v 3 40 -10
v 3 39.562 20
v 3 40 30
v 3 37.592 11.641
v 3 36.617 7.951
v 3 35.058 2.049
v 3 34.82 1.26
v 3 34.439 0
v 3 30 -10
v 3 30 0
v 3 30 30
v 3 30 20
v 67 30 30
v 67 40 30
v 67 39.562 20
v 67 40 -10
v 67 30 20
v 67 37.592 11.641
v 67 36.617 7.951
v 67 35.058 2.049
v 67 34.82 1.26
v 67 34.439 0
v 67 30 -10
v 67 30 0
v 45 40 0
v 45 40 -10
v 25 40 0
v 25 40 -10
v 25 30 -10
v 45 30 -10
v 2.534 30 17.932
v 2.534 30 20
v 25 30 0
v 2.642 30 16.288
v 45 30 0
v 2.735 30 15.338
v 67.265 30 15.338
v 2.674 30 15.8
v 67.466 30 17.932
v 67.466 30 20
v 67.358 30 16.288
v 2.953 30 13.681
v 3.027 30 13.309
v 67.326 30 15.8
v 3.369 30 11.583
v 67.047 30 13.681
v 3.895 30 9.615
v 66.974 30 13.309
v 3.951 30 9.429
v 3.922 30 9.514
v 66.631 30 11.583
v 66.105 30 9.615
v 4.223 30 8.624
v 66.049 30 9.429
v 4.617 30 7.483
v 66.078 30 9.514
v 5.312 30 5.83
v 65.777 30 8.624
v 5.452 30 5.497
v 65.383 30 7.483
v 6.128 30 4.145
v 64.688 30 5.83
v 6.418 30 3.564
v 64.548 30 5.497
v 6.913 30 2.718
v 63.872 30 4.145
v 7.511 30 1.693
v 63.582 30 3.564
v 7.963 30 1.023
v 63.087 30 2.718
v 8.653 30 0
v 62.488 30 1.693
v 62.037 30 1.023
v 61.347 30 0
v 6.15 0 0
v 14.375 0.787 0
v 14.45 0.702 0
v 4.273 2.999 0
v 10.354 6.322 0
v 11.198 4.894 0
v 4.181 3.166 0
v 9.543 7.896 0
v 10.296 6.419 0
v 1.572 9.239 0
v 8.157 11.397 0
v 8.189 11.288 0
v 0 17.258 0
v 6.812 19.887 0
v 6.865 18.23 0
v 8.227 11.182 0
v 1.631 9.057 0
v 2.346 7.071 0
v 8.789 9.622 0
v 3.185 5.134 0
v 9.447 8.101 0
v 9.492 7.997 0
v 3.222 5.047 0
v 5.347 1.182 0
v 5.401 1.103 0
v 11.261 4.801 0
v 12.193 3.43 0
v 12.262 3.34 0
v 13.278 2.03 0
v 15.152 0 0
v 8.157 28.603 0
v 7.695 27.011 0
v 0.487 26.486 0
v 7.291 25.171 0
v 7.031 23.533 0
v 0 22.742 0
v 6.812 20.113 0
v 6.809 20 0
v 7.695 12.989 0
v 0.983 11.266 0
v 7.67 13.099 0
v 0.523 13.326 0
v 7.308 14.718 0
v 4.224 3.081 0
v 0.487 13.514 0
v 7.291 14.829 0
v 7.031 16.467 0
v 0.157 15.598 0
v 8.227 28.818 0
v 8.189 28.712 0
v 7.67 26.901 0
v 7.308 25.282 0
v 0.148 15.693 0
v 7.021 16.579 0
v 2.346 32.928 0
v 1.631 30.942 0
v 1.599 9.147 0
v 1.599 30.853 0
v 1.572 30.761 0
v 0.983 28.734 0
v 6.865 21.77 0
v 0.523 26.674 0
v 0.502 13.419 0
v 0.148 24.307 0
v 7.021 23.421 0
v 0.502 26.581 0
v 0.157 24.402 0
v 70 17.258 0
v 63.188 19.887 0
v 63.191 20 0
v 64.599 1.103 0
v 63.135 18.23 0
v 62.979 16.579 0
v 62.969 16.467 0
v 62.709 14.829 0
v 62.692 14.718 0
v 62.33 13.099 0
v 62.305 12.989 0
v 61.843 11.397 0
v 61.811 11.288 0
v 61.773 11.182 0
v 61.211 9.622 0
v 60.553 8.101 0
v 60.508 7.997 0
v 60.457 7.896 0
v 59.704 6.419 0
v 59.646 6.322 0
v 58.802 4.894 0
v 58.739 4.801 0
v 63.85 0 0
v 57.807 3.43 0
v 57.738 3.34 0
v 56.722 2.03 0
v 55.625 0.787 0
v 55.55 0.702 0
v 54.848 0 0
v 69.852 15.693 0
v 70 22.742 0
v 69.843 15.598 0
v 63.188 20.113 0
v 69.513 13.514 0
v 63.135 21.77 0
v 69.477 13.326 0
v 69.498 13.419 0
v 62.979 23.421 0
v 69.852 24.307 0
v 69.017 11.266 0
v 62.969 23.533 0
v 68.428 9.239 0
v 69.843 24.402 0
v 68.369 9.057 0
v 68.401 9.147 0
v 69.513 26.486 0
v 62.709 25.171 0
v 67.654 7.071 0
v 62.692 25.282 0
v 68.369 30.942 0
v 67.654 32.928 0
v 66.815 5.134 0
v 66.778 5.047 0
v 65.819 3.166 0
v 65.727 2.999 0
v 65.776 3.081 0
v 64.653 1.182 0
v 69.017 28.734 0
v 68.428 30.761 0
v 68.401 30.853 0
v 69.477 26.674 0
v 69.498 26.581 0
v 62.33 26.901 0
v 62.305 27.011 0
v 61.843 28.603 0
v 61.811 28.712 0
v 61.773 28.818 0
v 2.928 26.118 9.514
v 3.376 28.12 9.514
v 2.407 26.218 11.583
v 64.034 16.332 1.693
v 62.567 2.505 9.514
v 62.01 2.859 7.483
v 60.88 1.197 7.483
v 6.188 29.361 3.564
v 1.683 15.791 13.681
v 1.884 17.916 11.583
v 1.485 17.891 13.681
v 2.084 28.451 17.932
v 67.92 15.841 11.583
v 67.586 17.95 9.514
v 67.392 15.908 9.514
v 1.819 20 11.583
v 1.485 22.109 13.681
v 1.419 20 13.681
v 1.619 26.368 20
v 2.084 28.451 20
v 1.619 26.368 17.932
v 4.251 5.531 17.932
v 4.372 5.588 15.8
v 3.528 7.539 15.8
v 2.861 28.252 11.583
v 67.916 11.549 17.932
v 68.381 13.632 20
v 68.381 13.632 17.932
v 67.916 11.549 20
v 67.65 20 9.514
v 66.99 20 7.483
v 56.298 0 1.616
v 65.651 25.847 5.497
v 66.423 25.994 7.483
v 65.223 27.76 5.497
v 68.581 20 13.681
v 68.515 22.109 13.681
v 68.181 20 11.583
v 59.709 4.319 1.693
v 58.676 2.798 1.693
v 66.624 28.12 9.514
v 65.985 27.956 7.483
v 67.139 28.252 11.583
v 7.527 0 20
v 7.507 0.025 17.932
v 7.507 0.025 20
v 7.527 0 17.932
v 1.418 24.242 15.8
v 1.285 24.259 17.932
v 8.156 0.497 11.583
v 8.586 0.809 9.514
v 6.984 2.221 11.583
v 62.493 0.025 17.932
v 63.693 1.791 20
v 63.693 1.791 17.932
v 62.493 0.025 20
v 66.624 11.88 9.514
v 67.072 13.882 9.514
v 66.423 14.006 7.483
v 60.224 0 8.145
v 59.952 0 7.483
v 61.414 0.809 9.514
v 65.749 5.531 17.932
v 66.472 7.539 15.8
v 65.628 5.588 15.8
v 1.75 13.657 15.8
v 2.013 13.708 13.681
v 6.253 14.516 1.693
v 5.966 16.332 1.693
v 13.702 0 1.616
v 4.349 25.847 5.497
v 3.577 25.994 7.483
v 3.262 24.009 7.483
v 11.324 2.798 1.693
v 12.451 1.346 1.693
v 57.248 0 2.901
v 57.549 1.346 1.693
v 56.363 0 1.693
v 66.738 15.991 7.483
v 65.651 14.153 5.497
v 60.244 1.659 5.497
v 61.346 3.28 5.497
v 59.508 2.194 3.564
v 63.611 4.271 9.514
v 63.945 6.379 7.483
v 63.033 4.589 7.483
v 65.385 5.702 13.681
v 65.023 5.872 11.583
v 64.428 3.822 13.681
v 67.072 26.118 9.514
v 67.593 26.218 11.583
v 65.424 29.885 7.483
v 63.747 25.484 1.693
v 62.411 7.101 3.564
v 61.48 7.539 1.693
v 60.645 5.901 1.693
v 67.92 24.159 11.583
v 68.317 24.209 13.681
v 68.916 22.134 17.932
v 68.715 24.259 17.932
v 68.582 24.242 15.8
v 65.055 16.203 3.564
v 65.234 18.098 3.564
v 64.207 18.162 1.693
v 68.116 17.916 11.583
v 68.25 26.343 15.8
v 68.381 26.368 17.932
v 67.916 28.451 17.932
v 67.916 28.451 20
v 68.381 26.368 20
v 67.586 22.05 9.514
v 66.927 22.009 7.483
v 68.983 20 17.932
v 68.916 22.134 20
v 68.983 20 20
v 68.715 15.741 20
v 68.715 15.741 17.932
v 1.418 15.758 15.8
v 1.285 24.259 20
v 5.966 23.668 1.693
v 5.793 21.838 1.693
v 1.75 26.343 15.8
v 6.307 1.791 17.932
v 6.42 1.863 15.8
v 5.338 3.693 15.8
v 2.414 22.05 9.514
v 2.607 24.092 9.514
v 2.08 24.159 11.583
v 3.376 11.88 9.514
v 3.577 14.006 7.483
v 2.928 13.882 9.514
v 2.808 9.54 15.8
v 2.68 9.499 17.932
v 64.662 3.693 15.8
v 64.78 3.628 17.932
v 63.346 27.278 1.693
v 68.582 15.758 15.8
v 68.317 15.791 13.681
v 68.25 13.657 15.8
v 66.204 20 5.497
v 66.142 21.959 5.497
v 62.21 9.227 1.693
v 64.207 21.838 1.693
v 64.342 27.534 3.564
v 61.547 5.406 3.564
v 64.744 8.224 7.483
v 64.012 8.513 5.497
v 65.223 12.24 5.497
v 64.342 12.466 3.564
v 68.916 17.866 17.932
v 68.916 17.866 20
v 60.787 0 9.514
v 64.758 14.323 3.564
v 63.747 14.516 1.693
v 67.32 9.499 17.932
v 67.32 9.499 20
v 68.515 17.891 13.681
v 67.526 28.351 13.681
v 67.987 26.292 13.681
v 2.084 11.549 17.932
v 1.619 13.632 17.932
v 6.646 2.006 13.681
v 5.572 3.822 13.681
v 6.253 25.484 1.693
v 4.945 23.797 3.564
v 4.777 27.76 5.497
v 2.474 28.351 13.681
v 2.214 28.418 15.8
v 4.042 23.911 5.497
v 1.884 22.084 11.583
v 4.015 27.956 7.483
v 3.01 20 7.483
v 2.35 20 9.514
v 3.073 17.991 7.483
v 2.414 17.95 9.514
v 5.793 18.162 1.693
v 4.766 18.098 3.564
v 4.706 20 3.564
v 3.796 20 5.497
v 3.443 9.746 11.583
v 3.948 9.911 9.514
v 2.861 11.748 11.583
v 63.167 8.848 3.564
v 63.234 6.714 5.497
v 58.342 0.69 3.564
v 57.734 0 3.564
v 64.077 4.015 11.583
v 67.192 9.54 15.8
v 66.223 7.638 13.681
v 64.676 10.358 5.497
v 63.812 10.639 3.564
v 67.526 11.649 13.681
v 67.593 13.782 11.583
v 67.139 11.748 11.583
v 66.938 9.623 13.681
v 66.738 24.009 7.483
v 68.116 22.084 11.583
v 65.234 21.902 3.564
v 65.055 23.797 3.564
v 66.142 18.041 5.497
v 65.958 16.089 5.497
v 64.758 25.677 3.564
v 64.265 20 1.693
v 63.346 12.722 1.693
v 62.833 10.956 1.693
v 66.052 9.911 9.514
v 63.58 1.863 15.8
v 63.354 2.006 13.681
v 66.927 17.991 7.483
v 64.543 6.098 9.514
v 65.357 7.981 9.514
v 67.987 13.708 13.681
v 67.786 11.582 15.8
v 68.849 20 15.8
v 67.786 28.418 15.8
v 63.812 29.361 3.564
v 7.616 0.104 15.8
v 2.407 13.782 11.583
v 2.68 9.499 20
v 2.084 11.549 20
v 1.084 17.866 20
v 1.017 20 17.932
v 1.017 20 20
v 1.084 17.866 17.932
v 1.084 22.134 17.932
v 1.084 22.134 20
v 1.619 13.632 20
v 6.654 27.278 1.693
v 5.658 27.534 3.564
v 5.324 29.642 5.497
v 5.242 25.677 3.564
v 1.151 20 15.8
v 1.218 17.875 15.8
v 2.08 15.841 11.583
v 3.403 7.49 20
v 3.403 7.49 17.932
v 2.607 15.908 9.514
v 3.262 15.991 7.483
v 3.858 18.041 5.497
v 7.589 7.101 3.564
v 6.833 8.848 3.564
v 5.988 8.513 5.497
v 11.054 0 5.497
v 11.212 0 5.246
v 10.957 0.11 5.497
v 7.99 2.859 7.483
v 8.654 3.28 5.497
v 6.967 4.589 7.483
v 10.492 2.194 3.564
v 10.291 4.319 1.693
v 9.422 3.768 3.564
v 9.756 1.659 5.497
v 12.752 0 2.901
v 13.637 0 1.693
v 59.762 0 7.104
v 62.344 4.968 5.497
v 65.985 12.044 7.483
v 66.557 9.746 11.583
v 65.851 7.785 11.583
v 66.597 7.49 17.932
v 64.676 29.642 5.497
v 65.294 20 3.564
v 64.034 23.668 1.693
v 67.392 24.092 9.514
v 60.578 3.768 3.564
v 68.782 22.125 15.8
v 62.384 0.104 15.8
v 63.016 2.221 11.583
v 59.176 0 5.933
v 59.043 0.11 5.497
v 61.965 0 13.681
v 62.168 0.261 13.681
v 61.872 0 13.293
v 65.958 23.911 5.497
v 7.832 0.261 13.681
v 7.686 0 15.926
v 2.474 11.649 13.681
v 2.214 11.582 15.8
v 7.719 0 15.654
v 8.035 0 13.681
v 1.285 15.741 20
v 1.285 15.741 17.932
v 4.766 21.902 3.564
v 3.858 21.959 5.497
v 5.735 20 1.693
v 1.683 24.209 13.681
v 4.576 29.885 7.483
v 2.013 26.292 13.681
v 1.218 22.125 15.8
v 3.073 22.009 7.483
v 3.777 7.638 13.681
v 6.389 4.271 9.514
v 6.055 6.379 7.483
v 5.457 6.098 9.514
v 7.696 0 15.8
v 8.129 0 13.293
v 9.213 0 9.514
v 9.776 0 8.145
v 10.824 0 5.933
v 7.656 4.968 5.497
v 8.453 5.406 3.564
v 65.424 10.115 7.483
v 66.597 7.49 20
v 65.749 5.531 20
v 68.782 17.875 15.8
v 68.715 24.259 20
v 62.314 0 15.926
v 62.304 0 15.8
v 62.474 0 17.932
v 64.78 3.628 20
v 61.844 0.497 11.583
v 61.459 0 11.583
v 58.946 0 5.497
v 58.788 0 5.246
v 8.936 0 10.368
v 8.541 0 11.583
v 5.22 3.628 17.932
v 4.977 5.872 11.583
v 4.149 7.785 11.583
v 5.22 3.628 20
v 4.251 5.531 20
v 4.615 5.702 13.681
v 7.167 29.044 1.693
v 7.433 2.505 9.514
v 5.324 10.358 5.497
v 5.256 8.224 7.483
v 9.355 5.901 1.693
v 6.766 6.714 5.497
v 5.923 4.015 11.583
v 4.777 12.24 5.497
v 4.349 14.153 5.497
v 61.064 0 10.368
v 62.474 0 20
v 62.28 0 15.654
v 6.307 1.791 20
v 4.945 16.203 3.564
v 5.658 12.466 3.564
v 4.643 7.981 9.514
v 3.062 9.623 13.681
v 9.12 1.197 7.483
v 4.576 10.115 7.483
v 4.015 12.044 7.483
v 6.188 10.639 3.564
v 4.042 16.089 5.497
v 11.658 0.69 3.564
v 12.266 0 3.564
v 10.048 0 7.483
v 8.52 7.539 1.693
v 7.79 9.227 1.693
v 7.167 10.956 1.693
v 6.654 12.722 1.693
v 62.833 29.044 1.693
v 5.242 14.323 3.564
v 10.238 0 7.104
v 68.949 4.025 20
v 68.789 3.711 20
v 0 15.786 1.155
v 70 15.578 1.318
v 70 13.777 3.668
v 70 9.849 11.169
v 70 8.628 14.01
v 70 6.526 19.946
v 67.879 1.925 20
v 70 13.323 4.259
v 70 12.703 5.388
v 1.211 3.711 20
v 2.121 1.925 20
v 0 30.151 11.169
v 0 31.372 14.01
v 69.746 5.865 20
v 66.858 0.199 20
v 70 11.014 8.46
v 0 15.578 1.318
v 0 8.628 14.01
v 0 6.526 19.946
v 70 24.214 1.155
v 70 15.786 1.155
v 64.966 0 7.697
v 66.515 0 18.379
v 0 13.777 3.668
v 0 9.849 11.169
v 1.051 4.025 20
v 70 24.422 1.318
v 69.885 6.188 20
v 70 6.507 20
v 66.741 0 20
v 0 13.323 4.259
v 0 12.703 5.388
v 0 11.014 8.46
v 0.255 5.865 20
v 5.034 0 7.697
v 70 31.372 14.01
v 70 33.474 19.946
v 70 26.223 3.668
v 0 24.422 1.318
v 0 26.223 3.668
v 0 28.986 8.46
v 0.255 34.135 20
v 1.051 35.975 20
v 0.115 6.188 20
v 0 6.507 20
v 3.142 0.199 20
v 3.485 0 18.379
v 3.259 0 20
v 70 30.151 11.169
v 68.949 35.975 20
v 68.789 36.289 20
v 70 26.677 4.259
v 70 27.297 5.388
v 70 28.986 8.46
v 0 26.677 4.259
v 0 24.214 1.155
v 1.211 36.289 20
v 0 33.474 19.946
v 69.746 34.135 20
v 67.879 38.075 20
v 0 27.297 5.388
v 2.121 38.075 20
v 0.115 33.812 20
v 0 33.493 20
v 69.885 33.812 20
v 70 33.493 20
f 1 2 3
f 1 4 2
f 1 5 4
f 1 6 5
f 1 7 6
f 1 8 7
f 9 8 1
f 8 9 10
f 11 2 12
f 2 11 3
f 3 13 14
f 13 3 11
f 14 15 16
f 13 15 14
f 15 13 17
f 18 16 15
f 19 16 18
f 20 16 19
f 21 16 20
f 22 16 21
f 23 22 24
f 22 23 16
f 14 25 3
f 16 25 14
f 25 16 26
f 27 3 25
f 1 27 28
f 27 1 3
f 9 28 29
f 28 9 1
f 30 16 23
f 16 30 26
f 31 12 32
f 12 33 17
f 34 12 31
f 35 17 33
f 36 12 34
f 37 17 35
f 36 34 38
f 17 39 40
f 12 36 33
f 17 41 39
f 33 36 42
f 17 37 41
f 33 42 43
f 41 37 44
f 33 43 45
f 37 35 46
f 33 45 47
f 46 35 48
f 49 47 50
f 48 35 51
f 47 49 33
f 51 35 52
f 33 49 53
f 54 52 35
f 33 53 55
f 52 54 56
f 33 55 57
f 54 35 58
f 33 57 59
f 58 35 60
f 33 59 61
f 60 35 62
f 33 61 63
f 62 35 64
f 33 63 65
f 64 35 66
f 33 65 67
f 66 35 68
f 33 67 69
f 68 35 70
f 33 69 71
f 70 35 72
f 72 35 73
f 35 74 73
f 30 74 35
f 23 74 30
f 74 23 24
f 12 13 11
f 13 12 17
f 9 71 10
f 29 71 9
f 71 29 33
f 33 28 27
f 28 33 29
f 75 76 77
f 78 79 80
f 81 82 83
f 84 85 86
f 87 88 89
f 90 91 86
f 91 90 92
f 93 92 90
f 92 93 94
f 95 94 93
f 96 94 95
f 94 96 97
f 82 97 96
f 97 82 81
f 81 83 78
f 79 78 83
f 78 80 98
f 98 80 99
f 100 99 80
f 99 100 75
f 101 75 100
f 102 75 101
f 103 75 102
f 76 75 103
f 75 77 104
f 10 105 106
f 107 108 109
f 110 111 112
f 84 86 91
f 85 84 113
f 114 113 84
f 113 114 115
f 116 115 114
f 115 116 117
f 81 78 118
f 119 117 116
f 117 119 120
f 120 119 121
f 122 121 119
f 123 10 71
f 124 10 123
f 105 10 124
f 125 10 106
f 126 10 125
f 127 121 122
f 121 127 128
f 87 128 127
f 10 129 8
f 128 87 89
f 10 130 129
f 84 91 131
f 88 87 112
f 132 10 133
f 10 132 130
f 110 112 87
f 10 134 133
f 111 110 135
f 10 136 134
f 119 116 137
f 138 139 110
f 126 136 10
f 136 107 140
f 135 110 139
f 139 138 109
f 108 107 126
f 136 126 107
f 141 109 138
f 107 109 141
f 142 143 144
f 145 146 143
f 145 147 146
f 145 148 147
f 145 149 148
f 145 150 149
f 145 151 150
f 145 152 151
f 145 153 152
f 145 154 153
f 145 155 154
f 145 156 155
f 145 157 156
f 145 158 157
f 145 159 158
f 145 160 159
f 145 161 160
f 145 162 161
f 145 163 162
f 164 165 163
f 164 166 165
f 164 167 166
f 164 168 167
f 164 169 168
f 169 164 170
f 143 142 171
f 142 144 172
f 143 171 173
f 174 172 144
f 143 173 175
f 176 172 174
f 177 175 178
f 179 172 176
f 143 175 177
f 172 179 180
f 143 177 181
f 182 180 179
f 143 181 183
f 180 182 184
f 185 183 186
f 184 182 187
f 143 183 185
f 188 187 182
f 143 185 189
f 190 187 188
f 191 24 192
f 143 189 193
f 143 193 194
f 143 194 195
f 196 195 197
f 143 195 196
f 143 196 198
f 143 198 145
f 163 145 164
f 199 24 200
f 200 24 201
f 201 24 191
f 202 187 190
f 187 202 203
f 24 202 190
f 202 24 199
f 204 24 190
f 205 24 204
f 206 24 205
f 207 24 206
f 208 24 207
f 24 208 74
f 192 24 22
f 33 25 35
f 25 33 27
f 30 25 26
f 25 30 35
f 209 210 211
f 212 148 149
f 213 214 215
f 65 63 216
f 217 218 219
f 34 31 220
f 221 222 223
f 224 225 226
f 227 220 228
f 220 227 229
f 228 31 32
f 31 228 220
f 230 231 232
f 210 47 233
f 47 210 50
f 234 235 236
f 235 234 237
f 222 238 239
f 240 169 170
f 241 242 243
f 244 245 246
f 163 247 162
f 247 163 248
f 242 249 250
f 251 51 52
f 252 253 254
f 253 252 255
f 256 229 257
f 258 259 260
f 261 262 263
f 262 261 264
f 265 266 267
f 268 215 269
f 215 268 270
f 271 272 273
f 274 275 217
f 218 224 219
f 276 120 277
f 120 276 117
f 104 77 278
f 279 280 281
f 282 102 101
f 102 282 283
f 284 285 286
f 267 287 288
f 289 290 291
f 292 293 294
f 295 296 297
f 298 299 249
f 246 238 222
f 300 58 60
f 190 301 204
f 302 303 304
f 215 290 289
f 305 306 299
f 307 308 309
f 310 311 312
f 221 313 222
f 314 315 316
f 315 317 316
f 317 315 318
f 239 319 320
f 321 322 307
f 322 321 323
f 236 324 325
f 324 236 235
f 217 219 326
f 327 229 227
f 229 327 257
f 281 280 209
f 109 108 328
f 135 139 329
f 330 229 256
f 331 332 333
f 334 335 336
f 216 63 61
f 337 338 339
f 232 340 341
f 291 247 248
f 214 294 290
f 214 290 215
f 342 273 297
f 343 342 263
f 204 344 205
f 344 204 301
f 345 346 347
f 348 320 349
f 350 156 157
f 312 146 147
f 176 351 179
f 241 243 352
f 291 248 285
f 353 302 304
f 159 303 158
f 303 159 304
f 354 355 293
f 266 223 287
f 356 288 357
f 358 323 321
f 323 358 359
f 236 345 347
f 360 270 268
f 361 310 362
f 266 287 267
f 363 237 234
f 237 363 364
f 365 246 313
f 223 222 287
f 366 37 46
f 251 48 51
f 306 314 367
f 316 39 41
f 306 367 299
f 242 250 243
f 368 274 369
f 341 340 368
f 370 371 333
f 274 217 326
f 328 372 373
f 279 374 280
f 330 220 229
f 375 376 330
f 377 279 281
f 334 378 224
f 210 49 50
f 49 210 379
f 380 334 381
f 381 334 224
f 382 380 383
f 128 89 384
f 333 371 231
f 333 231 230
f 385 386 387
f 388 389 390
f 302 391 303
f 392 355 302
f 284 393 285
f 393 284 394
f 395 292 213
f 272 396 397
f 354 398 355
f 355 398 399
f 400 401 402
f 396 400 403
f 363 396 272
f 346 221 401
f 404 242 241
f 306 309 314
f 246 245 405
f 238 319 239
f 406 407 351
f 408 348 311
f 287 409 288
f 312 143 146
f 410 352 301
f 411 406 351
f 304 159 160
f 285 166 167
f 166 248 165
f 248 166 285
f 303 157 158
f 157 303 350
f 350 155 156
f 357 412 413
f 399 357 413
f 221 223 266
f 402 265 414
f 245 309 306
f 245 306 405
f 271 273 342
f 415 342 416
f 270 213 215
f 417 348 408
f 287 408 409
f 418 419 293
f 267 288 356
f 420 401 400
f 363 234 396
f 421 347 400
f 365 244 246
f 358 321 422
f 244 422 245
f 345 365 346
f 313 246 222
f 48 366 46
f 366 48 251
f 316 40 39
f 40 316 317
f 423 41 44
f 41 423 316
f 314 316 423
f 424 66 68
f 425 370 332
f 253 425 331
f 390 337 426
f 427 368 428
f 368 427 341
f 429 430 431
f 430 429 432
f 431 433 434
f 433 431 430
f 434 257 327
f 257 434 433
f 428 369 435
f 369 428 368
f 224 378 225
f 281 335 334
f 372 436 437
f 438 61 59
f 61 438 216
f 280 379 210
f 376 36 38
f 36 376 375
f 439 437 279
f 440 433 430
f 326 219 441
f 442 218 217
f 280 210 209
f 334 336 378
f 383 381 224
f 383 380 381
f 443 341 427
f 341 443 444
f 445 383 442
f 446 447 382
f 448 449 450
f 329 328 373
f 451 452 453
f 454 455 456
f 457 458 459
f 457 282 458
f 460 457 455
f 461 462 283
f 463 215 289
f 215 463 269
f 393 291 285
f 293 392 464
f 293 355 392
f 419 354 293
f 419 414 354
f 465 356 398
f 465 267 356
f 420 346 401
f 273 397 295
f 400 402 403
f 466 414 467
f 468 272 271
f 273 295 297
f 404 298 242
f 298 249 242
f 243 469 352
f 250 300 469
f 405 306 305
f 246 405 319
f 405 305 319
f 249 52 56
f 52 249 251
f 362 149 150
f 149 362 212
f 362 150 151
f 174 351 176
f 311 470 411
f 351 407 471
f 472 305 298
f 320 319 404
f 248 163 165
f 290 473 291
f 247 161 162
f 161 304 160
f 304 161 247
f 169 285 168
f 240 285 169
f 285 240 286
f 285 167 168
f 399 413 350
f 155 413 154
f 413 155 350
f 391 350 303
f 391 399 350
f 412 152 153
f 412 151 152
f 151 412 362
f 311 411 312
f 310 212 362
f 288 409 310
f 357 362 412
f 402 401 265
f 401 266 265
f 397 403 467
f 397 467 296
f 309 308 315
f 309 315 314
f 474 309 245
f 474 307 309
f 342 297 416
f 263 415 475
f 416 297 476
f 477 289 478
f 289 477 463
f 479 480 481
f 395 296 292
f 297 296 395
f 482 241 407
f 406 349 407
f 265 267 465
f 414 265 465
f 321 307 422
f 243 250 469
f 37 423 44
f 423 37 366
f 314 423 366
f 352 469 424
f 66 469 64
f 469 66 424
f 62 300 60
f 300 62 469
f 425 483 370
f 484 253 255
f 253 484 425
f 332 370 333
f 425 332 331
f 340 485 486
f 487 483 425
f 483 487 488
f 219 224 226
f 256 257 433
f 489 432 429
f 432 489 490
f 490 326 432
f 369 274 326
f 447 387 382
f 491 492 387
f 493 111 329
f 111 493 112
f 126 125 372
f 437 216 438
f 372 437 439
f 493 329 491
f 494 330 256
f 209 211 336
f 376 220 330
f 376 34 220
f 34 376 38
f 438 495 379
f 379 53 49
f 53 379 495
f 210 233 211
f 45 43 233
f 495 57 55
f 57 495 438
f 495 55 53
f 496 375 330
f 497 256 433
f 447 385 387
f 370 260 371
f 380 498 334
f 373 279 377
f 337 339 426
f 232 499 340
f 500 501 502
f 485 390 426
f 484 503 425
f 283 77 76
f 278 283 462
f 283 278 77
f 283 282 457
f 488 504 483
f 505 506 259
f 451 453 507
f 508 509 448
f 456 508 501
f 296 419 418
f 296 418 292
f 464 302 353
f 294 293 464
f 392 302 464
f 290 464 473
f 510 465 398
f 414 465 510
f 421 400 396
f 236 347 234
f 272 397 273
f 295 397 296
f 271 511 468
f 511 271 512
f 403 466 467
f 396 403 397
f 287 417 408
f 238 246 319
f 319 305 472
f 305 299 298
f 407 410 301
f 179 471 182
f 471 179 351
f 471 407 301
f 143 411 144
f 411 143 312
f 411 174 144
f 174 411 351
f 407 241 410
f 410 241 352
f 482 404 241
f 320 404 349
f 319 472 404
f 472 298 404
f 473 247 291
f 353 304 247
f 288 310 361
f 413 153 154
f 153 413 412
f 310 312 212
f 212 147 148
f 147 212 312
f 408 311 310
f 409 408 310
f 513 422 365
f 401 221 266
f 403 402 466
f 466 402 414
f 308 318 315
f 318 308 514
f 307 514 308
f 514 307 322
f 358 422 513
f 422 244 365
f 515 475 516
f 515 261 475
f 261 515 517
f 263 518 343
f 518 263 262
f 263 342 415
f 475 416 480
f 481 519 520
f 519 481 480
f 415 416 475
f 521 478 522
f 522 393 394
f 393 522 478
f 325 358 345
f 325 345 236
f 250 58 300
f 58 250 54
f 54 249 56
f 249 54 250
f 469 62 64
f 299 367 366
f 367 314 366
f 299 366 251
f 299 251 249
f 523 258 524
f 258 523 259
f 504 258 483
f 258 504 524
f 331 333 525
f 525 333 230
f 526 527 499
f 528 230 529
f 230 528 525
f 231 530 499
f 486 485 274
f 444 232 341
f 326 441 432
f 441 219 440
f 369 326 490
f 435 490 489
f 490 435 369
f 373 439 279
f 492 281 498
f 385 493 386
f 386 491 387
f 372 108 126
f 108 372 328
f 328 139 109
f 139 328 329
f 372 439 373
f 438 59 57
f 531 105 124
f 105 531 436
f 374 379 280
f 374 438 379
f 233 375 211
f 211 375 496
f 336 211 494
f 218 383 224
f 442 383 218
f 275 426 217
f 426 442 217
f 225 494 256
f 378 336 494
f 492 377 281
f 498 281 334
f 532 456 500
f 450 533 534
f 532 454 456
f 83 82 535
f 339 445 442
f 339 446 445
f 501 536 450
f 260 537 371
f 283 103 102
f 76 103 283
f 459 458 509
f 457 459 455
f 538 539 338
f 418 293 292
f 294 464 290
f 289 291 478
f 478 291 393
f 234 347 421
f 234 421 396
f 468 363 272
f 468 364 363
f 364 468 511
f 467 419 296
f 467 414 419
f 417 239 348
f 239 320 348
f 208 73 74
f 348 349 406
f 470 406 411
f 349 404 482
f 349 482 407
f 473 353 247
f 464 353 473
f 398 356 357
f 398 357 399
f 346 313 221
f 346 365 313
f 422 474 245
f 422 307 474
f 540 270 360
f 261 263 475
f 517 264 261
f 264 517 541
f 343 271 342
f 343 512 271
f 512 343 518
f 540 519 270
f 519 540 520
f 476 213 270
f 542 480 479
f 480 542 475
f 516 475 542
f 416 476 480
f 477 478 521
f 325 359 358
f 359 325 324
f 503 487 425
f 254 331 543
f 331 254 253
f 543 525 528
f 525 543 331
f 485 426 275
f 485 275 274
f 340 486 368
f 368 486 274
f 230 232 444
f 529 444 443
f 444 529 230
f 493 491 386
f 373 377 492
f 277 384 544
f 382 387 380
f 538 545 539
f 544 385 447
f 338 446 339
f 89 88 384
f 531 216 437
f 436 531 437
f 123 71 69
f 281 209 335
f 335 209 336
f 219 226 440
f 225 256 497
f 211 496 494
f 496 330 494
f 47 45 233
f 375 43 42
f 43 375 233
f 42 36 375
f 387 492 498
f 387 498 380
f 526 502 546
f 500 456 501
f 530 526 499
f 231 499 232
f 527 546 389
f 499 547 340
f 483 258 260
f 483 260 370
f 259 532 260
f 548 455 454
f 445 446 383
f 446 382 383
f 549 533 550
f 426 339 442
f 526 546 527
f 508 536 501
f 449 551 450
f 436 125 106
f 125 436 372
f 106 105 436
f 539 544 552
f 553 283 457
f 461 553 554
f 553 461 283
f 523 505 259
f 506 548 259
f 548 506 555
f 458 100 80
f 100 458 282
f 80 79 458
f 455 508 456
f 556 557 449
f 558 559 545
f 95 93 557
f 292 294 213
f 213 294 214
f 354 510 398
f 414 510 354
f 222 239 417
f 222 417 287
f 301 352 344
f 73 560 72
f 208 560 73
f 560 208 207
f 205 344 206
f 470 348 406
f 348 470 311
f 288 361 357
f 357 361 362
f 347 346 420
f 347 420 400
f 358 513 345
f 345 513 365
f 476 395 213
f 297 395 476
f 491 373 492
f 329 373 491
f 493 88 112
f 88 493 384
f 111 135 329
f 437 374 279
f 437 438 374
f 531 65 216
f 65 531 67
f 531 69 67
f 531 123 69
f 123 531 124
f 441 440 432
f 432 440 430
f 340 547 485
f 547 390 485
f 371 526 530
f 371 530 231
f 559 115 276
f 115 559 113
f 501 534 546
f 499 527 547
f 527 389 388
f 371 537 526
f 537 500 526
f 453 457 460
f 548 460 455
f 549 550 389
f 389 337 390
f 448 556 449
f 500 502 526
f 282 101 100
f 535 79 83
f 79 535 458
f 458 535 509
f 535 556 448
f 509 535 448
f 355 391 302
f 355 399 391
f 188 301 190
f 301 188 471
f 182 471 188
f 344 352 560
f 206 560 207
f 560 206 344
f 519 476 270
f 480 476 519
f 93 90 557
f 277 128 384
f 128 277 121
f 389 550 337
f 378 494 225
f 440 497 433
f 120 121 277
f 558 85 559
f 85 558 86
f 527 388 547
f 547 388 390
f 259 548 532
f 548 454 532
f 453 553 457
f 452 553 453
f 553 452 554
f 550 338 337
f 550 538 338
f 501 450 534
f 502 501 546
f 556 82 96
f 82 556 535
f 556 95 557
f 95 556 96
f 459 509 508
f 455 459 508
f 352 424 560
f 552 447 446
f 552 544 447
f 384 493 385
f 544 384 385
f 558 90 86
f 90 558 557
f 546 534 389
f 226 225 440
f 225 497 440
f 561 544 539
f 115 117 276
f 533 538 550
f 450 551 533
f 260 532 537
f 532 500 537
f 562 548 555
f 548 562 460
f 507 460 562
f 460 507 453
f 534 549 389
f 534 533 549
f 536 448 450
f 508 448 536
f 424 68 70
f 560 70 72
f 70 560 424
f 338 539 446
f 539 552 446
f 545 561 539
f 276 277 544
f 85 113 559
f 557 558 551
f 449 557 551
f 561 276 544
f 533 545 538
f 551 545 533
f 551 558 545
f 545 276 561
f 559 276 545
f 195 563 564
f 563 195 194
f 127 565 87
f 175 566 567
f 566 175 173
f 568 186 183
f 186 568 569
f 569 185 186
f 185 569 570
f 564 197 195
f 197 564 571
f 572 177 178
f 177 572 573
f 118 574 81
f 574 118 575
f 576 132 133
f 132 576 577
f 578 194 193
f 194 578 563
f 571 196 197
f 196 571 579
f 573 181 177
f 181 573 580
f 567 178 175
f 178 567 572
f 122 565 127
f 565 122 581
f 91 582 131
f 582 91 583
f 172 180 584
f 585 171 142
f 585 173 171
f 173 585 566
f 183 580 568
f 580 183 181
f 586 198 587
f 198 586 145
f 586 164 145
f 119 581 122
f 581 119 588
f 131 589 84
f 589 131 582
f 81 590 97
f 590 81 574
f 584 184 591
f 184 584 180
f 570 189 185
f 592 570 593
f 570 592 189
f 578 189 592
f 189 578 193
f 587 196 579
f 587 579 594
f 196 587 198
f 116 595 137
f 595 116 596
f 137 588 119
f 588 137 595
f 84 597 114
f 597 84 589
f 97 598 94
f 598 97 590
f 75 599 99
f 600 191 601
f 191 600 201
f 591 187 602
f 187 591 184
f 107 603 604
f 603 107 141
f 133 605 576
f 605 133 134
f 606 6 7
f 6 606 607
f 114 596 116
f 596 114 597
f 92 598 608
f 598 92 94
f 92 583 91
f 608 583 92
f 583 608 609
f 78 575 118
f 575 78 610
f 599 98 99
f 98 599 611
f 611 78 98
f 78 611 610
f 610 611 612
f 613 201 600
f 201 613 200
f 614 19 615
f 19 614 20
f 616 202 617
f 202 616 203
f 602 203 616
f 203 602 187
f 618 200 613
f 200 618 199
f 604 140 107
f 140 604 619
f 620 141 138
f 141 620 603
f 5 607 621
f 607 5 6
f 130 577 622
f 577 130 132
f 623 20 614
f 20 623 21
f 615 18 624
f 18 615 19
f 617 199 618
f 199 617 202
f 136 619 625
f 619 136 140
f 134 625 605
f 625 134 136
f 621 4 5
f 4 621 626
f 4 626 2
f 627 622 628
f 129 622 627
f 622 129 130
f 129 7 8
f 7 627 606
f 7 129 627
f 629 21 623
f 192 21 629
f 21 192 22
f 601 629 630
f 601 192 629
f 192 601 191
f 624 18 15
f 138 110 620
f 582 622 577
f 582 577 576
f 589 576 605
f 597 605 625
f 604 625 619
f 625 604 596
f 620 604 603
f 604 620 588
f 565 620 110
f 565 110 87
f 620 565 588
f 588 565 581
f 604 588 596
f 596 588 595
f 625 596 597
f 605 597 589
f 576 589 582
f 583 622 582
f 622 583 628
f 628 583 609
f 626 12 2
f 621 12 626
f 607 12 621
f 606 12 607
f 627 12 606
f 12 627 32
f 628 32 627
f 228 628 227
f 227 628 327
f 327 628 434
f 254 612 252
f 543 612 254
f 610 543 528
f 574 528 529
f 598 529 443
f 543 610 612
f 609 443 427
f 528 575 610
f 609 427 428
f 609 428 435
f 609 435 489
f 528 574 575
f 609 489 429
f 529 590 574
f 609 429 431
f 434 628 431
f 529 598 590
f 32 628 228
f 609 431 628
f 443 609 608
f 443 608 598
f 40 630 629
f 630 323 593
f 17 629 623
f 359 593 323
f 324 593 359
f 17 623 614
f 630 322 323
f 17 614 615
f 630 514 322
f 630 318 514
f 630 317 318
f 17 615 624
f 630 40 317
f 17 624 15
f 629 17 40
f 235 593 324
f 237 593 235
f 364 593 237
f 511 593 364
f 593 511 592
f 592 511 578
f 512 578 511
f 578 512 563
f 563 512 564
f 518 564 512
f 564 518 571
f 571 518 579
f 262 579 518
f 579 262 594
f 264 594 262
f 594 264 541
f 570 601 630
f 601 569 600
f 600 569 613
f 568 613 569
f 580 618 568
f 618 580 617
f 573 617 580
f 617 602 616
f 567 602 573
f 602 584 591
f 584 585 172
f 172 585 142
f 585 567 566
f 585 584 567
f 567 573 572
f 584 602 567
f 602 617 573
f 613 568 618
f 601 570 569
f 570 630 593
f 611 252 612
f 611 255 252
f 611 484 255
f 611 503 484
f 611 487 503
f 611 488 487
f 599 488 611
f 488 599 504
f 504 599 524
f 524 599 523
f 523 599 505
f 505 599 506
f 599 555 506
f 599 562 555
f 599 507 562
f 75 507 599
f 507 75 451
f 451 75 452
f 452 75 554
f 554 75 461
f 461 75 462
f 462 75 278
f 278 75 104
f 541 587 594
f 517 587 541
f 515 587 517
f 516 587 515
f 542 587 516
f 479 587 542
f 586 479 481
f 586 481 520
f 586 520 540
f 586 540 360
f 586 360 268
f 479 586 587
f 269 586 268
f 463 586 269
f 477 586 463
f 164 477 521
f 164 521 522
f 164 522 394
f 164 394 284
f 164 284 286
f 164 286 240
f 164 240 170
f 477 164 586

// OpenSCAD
difference(){
    translate([3,30,-10]){
        cube([64,10,40]);
    }
    
    // switch lever opening
    translate([25,10,-15]){
        cube([20,40,15]);
    }
}

// switch lever
translate([26,10,-10]){
    //cube([18,40,8]);
}
    
difference(){

	cube([70,40,20]);
    
	// shape inside of hook
	translate([35,20,-1]){
		difference(){
            translate([0,0,20]){
                sphere(r=34, $fn=100);
            }
			translate([-33,10,-1]){
				cube([66,32,27]);
			}
		}
	}
    
	// shape outside of hook
	translate([35,20,-1]){
		difference(){
			difference(){
				cylinder(r=42,h=25, $fn=100);
				cylinder(r1=35, r2=38,h=25, $fn=100);
			}

			translate([-32,10,-1]){
				cube([64,32,27]);
			}
		}
	}
    
    // version
    translate([20,39,5]){
        rotate([90,0,180]){
            linear_extrude(height=5){
                text("V8");
            }
        }
    }
}
